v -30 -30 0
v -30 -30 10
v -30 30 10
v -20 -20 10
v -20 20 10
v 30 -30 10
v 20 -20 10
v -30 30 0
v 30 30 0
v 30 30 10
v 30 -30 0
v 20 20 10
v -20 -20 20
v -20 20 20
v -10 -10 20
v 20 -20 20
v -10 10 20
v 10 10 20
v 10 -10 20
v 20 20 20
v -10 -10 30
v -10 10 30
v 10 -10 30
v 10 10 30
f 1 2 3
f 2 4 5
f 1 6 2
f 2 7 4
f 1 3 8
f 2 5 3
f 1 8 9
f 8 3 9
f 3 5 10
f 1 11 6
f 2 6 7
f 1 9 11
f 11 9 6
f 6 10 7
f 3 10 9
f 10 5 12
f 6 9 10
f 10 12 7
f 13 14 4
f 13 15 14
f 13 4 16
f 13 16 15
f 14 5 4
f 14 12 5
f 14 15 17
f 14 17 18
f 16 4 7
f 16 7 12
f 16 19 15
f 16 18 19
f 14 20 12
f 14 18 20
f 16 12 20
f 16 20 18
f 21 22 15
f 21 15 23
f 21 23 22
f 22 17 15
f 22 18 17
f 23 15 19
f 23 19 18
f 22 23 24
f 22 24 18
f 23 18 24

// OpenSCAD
// 3段の階段状ピラミッド
// 各段は中心を揃えて積み上げる

step_sizes = [60, 40, 20];  // 各段の一辺の長さ (mm)
step_height = 10;           // 各段の高さ (mm)

module stepped_pyramid(sizes, h) {
    for (i = [0 : len(sizes) - 1]) {
        translate([0, 0, i * h])
            cube([sizes[i], sizes[i], h], center = false)
                ;
    }
}

// 中心を揃えるため center=true 版で実装
module stepped_pyramid_centered(sizes, h) {
    for (i = [0 : len(sizes) - 1]) {
        translate([0, 0, i * h + h / 2])
            cube([sizes[i], sizes[i], h], center = true);
    }
}

stepped_pyramid_centered(step_sizes, step_height);
